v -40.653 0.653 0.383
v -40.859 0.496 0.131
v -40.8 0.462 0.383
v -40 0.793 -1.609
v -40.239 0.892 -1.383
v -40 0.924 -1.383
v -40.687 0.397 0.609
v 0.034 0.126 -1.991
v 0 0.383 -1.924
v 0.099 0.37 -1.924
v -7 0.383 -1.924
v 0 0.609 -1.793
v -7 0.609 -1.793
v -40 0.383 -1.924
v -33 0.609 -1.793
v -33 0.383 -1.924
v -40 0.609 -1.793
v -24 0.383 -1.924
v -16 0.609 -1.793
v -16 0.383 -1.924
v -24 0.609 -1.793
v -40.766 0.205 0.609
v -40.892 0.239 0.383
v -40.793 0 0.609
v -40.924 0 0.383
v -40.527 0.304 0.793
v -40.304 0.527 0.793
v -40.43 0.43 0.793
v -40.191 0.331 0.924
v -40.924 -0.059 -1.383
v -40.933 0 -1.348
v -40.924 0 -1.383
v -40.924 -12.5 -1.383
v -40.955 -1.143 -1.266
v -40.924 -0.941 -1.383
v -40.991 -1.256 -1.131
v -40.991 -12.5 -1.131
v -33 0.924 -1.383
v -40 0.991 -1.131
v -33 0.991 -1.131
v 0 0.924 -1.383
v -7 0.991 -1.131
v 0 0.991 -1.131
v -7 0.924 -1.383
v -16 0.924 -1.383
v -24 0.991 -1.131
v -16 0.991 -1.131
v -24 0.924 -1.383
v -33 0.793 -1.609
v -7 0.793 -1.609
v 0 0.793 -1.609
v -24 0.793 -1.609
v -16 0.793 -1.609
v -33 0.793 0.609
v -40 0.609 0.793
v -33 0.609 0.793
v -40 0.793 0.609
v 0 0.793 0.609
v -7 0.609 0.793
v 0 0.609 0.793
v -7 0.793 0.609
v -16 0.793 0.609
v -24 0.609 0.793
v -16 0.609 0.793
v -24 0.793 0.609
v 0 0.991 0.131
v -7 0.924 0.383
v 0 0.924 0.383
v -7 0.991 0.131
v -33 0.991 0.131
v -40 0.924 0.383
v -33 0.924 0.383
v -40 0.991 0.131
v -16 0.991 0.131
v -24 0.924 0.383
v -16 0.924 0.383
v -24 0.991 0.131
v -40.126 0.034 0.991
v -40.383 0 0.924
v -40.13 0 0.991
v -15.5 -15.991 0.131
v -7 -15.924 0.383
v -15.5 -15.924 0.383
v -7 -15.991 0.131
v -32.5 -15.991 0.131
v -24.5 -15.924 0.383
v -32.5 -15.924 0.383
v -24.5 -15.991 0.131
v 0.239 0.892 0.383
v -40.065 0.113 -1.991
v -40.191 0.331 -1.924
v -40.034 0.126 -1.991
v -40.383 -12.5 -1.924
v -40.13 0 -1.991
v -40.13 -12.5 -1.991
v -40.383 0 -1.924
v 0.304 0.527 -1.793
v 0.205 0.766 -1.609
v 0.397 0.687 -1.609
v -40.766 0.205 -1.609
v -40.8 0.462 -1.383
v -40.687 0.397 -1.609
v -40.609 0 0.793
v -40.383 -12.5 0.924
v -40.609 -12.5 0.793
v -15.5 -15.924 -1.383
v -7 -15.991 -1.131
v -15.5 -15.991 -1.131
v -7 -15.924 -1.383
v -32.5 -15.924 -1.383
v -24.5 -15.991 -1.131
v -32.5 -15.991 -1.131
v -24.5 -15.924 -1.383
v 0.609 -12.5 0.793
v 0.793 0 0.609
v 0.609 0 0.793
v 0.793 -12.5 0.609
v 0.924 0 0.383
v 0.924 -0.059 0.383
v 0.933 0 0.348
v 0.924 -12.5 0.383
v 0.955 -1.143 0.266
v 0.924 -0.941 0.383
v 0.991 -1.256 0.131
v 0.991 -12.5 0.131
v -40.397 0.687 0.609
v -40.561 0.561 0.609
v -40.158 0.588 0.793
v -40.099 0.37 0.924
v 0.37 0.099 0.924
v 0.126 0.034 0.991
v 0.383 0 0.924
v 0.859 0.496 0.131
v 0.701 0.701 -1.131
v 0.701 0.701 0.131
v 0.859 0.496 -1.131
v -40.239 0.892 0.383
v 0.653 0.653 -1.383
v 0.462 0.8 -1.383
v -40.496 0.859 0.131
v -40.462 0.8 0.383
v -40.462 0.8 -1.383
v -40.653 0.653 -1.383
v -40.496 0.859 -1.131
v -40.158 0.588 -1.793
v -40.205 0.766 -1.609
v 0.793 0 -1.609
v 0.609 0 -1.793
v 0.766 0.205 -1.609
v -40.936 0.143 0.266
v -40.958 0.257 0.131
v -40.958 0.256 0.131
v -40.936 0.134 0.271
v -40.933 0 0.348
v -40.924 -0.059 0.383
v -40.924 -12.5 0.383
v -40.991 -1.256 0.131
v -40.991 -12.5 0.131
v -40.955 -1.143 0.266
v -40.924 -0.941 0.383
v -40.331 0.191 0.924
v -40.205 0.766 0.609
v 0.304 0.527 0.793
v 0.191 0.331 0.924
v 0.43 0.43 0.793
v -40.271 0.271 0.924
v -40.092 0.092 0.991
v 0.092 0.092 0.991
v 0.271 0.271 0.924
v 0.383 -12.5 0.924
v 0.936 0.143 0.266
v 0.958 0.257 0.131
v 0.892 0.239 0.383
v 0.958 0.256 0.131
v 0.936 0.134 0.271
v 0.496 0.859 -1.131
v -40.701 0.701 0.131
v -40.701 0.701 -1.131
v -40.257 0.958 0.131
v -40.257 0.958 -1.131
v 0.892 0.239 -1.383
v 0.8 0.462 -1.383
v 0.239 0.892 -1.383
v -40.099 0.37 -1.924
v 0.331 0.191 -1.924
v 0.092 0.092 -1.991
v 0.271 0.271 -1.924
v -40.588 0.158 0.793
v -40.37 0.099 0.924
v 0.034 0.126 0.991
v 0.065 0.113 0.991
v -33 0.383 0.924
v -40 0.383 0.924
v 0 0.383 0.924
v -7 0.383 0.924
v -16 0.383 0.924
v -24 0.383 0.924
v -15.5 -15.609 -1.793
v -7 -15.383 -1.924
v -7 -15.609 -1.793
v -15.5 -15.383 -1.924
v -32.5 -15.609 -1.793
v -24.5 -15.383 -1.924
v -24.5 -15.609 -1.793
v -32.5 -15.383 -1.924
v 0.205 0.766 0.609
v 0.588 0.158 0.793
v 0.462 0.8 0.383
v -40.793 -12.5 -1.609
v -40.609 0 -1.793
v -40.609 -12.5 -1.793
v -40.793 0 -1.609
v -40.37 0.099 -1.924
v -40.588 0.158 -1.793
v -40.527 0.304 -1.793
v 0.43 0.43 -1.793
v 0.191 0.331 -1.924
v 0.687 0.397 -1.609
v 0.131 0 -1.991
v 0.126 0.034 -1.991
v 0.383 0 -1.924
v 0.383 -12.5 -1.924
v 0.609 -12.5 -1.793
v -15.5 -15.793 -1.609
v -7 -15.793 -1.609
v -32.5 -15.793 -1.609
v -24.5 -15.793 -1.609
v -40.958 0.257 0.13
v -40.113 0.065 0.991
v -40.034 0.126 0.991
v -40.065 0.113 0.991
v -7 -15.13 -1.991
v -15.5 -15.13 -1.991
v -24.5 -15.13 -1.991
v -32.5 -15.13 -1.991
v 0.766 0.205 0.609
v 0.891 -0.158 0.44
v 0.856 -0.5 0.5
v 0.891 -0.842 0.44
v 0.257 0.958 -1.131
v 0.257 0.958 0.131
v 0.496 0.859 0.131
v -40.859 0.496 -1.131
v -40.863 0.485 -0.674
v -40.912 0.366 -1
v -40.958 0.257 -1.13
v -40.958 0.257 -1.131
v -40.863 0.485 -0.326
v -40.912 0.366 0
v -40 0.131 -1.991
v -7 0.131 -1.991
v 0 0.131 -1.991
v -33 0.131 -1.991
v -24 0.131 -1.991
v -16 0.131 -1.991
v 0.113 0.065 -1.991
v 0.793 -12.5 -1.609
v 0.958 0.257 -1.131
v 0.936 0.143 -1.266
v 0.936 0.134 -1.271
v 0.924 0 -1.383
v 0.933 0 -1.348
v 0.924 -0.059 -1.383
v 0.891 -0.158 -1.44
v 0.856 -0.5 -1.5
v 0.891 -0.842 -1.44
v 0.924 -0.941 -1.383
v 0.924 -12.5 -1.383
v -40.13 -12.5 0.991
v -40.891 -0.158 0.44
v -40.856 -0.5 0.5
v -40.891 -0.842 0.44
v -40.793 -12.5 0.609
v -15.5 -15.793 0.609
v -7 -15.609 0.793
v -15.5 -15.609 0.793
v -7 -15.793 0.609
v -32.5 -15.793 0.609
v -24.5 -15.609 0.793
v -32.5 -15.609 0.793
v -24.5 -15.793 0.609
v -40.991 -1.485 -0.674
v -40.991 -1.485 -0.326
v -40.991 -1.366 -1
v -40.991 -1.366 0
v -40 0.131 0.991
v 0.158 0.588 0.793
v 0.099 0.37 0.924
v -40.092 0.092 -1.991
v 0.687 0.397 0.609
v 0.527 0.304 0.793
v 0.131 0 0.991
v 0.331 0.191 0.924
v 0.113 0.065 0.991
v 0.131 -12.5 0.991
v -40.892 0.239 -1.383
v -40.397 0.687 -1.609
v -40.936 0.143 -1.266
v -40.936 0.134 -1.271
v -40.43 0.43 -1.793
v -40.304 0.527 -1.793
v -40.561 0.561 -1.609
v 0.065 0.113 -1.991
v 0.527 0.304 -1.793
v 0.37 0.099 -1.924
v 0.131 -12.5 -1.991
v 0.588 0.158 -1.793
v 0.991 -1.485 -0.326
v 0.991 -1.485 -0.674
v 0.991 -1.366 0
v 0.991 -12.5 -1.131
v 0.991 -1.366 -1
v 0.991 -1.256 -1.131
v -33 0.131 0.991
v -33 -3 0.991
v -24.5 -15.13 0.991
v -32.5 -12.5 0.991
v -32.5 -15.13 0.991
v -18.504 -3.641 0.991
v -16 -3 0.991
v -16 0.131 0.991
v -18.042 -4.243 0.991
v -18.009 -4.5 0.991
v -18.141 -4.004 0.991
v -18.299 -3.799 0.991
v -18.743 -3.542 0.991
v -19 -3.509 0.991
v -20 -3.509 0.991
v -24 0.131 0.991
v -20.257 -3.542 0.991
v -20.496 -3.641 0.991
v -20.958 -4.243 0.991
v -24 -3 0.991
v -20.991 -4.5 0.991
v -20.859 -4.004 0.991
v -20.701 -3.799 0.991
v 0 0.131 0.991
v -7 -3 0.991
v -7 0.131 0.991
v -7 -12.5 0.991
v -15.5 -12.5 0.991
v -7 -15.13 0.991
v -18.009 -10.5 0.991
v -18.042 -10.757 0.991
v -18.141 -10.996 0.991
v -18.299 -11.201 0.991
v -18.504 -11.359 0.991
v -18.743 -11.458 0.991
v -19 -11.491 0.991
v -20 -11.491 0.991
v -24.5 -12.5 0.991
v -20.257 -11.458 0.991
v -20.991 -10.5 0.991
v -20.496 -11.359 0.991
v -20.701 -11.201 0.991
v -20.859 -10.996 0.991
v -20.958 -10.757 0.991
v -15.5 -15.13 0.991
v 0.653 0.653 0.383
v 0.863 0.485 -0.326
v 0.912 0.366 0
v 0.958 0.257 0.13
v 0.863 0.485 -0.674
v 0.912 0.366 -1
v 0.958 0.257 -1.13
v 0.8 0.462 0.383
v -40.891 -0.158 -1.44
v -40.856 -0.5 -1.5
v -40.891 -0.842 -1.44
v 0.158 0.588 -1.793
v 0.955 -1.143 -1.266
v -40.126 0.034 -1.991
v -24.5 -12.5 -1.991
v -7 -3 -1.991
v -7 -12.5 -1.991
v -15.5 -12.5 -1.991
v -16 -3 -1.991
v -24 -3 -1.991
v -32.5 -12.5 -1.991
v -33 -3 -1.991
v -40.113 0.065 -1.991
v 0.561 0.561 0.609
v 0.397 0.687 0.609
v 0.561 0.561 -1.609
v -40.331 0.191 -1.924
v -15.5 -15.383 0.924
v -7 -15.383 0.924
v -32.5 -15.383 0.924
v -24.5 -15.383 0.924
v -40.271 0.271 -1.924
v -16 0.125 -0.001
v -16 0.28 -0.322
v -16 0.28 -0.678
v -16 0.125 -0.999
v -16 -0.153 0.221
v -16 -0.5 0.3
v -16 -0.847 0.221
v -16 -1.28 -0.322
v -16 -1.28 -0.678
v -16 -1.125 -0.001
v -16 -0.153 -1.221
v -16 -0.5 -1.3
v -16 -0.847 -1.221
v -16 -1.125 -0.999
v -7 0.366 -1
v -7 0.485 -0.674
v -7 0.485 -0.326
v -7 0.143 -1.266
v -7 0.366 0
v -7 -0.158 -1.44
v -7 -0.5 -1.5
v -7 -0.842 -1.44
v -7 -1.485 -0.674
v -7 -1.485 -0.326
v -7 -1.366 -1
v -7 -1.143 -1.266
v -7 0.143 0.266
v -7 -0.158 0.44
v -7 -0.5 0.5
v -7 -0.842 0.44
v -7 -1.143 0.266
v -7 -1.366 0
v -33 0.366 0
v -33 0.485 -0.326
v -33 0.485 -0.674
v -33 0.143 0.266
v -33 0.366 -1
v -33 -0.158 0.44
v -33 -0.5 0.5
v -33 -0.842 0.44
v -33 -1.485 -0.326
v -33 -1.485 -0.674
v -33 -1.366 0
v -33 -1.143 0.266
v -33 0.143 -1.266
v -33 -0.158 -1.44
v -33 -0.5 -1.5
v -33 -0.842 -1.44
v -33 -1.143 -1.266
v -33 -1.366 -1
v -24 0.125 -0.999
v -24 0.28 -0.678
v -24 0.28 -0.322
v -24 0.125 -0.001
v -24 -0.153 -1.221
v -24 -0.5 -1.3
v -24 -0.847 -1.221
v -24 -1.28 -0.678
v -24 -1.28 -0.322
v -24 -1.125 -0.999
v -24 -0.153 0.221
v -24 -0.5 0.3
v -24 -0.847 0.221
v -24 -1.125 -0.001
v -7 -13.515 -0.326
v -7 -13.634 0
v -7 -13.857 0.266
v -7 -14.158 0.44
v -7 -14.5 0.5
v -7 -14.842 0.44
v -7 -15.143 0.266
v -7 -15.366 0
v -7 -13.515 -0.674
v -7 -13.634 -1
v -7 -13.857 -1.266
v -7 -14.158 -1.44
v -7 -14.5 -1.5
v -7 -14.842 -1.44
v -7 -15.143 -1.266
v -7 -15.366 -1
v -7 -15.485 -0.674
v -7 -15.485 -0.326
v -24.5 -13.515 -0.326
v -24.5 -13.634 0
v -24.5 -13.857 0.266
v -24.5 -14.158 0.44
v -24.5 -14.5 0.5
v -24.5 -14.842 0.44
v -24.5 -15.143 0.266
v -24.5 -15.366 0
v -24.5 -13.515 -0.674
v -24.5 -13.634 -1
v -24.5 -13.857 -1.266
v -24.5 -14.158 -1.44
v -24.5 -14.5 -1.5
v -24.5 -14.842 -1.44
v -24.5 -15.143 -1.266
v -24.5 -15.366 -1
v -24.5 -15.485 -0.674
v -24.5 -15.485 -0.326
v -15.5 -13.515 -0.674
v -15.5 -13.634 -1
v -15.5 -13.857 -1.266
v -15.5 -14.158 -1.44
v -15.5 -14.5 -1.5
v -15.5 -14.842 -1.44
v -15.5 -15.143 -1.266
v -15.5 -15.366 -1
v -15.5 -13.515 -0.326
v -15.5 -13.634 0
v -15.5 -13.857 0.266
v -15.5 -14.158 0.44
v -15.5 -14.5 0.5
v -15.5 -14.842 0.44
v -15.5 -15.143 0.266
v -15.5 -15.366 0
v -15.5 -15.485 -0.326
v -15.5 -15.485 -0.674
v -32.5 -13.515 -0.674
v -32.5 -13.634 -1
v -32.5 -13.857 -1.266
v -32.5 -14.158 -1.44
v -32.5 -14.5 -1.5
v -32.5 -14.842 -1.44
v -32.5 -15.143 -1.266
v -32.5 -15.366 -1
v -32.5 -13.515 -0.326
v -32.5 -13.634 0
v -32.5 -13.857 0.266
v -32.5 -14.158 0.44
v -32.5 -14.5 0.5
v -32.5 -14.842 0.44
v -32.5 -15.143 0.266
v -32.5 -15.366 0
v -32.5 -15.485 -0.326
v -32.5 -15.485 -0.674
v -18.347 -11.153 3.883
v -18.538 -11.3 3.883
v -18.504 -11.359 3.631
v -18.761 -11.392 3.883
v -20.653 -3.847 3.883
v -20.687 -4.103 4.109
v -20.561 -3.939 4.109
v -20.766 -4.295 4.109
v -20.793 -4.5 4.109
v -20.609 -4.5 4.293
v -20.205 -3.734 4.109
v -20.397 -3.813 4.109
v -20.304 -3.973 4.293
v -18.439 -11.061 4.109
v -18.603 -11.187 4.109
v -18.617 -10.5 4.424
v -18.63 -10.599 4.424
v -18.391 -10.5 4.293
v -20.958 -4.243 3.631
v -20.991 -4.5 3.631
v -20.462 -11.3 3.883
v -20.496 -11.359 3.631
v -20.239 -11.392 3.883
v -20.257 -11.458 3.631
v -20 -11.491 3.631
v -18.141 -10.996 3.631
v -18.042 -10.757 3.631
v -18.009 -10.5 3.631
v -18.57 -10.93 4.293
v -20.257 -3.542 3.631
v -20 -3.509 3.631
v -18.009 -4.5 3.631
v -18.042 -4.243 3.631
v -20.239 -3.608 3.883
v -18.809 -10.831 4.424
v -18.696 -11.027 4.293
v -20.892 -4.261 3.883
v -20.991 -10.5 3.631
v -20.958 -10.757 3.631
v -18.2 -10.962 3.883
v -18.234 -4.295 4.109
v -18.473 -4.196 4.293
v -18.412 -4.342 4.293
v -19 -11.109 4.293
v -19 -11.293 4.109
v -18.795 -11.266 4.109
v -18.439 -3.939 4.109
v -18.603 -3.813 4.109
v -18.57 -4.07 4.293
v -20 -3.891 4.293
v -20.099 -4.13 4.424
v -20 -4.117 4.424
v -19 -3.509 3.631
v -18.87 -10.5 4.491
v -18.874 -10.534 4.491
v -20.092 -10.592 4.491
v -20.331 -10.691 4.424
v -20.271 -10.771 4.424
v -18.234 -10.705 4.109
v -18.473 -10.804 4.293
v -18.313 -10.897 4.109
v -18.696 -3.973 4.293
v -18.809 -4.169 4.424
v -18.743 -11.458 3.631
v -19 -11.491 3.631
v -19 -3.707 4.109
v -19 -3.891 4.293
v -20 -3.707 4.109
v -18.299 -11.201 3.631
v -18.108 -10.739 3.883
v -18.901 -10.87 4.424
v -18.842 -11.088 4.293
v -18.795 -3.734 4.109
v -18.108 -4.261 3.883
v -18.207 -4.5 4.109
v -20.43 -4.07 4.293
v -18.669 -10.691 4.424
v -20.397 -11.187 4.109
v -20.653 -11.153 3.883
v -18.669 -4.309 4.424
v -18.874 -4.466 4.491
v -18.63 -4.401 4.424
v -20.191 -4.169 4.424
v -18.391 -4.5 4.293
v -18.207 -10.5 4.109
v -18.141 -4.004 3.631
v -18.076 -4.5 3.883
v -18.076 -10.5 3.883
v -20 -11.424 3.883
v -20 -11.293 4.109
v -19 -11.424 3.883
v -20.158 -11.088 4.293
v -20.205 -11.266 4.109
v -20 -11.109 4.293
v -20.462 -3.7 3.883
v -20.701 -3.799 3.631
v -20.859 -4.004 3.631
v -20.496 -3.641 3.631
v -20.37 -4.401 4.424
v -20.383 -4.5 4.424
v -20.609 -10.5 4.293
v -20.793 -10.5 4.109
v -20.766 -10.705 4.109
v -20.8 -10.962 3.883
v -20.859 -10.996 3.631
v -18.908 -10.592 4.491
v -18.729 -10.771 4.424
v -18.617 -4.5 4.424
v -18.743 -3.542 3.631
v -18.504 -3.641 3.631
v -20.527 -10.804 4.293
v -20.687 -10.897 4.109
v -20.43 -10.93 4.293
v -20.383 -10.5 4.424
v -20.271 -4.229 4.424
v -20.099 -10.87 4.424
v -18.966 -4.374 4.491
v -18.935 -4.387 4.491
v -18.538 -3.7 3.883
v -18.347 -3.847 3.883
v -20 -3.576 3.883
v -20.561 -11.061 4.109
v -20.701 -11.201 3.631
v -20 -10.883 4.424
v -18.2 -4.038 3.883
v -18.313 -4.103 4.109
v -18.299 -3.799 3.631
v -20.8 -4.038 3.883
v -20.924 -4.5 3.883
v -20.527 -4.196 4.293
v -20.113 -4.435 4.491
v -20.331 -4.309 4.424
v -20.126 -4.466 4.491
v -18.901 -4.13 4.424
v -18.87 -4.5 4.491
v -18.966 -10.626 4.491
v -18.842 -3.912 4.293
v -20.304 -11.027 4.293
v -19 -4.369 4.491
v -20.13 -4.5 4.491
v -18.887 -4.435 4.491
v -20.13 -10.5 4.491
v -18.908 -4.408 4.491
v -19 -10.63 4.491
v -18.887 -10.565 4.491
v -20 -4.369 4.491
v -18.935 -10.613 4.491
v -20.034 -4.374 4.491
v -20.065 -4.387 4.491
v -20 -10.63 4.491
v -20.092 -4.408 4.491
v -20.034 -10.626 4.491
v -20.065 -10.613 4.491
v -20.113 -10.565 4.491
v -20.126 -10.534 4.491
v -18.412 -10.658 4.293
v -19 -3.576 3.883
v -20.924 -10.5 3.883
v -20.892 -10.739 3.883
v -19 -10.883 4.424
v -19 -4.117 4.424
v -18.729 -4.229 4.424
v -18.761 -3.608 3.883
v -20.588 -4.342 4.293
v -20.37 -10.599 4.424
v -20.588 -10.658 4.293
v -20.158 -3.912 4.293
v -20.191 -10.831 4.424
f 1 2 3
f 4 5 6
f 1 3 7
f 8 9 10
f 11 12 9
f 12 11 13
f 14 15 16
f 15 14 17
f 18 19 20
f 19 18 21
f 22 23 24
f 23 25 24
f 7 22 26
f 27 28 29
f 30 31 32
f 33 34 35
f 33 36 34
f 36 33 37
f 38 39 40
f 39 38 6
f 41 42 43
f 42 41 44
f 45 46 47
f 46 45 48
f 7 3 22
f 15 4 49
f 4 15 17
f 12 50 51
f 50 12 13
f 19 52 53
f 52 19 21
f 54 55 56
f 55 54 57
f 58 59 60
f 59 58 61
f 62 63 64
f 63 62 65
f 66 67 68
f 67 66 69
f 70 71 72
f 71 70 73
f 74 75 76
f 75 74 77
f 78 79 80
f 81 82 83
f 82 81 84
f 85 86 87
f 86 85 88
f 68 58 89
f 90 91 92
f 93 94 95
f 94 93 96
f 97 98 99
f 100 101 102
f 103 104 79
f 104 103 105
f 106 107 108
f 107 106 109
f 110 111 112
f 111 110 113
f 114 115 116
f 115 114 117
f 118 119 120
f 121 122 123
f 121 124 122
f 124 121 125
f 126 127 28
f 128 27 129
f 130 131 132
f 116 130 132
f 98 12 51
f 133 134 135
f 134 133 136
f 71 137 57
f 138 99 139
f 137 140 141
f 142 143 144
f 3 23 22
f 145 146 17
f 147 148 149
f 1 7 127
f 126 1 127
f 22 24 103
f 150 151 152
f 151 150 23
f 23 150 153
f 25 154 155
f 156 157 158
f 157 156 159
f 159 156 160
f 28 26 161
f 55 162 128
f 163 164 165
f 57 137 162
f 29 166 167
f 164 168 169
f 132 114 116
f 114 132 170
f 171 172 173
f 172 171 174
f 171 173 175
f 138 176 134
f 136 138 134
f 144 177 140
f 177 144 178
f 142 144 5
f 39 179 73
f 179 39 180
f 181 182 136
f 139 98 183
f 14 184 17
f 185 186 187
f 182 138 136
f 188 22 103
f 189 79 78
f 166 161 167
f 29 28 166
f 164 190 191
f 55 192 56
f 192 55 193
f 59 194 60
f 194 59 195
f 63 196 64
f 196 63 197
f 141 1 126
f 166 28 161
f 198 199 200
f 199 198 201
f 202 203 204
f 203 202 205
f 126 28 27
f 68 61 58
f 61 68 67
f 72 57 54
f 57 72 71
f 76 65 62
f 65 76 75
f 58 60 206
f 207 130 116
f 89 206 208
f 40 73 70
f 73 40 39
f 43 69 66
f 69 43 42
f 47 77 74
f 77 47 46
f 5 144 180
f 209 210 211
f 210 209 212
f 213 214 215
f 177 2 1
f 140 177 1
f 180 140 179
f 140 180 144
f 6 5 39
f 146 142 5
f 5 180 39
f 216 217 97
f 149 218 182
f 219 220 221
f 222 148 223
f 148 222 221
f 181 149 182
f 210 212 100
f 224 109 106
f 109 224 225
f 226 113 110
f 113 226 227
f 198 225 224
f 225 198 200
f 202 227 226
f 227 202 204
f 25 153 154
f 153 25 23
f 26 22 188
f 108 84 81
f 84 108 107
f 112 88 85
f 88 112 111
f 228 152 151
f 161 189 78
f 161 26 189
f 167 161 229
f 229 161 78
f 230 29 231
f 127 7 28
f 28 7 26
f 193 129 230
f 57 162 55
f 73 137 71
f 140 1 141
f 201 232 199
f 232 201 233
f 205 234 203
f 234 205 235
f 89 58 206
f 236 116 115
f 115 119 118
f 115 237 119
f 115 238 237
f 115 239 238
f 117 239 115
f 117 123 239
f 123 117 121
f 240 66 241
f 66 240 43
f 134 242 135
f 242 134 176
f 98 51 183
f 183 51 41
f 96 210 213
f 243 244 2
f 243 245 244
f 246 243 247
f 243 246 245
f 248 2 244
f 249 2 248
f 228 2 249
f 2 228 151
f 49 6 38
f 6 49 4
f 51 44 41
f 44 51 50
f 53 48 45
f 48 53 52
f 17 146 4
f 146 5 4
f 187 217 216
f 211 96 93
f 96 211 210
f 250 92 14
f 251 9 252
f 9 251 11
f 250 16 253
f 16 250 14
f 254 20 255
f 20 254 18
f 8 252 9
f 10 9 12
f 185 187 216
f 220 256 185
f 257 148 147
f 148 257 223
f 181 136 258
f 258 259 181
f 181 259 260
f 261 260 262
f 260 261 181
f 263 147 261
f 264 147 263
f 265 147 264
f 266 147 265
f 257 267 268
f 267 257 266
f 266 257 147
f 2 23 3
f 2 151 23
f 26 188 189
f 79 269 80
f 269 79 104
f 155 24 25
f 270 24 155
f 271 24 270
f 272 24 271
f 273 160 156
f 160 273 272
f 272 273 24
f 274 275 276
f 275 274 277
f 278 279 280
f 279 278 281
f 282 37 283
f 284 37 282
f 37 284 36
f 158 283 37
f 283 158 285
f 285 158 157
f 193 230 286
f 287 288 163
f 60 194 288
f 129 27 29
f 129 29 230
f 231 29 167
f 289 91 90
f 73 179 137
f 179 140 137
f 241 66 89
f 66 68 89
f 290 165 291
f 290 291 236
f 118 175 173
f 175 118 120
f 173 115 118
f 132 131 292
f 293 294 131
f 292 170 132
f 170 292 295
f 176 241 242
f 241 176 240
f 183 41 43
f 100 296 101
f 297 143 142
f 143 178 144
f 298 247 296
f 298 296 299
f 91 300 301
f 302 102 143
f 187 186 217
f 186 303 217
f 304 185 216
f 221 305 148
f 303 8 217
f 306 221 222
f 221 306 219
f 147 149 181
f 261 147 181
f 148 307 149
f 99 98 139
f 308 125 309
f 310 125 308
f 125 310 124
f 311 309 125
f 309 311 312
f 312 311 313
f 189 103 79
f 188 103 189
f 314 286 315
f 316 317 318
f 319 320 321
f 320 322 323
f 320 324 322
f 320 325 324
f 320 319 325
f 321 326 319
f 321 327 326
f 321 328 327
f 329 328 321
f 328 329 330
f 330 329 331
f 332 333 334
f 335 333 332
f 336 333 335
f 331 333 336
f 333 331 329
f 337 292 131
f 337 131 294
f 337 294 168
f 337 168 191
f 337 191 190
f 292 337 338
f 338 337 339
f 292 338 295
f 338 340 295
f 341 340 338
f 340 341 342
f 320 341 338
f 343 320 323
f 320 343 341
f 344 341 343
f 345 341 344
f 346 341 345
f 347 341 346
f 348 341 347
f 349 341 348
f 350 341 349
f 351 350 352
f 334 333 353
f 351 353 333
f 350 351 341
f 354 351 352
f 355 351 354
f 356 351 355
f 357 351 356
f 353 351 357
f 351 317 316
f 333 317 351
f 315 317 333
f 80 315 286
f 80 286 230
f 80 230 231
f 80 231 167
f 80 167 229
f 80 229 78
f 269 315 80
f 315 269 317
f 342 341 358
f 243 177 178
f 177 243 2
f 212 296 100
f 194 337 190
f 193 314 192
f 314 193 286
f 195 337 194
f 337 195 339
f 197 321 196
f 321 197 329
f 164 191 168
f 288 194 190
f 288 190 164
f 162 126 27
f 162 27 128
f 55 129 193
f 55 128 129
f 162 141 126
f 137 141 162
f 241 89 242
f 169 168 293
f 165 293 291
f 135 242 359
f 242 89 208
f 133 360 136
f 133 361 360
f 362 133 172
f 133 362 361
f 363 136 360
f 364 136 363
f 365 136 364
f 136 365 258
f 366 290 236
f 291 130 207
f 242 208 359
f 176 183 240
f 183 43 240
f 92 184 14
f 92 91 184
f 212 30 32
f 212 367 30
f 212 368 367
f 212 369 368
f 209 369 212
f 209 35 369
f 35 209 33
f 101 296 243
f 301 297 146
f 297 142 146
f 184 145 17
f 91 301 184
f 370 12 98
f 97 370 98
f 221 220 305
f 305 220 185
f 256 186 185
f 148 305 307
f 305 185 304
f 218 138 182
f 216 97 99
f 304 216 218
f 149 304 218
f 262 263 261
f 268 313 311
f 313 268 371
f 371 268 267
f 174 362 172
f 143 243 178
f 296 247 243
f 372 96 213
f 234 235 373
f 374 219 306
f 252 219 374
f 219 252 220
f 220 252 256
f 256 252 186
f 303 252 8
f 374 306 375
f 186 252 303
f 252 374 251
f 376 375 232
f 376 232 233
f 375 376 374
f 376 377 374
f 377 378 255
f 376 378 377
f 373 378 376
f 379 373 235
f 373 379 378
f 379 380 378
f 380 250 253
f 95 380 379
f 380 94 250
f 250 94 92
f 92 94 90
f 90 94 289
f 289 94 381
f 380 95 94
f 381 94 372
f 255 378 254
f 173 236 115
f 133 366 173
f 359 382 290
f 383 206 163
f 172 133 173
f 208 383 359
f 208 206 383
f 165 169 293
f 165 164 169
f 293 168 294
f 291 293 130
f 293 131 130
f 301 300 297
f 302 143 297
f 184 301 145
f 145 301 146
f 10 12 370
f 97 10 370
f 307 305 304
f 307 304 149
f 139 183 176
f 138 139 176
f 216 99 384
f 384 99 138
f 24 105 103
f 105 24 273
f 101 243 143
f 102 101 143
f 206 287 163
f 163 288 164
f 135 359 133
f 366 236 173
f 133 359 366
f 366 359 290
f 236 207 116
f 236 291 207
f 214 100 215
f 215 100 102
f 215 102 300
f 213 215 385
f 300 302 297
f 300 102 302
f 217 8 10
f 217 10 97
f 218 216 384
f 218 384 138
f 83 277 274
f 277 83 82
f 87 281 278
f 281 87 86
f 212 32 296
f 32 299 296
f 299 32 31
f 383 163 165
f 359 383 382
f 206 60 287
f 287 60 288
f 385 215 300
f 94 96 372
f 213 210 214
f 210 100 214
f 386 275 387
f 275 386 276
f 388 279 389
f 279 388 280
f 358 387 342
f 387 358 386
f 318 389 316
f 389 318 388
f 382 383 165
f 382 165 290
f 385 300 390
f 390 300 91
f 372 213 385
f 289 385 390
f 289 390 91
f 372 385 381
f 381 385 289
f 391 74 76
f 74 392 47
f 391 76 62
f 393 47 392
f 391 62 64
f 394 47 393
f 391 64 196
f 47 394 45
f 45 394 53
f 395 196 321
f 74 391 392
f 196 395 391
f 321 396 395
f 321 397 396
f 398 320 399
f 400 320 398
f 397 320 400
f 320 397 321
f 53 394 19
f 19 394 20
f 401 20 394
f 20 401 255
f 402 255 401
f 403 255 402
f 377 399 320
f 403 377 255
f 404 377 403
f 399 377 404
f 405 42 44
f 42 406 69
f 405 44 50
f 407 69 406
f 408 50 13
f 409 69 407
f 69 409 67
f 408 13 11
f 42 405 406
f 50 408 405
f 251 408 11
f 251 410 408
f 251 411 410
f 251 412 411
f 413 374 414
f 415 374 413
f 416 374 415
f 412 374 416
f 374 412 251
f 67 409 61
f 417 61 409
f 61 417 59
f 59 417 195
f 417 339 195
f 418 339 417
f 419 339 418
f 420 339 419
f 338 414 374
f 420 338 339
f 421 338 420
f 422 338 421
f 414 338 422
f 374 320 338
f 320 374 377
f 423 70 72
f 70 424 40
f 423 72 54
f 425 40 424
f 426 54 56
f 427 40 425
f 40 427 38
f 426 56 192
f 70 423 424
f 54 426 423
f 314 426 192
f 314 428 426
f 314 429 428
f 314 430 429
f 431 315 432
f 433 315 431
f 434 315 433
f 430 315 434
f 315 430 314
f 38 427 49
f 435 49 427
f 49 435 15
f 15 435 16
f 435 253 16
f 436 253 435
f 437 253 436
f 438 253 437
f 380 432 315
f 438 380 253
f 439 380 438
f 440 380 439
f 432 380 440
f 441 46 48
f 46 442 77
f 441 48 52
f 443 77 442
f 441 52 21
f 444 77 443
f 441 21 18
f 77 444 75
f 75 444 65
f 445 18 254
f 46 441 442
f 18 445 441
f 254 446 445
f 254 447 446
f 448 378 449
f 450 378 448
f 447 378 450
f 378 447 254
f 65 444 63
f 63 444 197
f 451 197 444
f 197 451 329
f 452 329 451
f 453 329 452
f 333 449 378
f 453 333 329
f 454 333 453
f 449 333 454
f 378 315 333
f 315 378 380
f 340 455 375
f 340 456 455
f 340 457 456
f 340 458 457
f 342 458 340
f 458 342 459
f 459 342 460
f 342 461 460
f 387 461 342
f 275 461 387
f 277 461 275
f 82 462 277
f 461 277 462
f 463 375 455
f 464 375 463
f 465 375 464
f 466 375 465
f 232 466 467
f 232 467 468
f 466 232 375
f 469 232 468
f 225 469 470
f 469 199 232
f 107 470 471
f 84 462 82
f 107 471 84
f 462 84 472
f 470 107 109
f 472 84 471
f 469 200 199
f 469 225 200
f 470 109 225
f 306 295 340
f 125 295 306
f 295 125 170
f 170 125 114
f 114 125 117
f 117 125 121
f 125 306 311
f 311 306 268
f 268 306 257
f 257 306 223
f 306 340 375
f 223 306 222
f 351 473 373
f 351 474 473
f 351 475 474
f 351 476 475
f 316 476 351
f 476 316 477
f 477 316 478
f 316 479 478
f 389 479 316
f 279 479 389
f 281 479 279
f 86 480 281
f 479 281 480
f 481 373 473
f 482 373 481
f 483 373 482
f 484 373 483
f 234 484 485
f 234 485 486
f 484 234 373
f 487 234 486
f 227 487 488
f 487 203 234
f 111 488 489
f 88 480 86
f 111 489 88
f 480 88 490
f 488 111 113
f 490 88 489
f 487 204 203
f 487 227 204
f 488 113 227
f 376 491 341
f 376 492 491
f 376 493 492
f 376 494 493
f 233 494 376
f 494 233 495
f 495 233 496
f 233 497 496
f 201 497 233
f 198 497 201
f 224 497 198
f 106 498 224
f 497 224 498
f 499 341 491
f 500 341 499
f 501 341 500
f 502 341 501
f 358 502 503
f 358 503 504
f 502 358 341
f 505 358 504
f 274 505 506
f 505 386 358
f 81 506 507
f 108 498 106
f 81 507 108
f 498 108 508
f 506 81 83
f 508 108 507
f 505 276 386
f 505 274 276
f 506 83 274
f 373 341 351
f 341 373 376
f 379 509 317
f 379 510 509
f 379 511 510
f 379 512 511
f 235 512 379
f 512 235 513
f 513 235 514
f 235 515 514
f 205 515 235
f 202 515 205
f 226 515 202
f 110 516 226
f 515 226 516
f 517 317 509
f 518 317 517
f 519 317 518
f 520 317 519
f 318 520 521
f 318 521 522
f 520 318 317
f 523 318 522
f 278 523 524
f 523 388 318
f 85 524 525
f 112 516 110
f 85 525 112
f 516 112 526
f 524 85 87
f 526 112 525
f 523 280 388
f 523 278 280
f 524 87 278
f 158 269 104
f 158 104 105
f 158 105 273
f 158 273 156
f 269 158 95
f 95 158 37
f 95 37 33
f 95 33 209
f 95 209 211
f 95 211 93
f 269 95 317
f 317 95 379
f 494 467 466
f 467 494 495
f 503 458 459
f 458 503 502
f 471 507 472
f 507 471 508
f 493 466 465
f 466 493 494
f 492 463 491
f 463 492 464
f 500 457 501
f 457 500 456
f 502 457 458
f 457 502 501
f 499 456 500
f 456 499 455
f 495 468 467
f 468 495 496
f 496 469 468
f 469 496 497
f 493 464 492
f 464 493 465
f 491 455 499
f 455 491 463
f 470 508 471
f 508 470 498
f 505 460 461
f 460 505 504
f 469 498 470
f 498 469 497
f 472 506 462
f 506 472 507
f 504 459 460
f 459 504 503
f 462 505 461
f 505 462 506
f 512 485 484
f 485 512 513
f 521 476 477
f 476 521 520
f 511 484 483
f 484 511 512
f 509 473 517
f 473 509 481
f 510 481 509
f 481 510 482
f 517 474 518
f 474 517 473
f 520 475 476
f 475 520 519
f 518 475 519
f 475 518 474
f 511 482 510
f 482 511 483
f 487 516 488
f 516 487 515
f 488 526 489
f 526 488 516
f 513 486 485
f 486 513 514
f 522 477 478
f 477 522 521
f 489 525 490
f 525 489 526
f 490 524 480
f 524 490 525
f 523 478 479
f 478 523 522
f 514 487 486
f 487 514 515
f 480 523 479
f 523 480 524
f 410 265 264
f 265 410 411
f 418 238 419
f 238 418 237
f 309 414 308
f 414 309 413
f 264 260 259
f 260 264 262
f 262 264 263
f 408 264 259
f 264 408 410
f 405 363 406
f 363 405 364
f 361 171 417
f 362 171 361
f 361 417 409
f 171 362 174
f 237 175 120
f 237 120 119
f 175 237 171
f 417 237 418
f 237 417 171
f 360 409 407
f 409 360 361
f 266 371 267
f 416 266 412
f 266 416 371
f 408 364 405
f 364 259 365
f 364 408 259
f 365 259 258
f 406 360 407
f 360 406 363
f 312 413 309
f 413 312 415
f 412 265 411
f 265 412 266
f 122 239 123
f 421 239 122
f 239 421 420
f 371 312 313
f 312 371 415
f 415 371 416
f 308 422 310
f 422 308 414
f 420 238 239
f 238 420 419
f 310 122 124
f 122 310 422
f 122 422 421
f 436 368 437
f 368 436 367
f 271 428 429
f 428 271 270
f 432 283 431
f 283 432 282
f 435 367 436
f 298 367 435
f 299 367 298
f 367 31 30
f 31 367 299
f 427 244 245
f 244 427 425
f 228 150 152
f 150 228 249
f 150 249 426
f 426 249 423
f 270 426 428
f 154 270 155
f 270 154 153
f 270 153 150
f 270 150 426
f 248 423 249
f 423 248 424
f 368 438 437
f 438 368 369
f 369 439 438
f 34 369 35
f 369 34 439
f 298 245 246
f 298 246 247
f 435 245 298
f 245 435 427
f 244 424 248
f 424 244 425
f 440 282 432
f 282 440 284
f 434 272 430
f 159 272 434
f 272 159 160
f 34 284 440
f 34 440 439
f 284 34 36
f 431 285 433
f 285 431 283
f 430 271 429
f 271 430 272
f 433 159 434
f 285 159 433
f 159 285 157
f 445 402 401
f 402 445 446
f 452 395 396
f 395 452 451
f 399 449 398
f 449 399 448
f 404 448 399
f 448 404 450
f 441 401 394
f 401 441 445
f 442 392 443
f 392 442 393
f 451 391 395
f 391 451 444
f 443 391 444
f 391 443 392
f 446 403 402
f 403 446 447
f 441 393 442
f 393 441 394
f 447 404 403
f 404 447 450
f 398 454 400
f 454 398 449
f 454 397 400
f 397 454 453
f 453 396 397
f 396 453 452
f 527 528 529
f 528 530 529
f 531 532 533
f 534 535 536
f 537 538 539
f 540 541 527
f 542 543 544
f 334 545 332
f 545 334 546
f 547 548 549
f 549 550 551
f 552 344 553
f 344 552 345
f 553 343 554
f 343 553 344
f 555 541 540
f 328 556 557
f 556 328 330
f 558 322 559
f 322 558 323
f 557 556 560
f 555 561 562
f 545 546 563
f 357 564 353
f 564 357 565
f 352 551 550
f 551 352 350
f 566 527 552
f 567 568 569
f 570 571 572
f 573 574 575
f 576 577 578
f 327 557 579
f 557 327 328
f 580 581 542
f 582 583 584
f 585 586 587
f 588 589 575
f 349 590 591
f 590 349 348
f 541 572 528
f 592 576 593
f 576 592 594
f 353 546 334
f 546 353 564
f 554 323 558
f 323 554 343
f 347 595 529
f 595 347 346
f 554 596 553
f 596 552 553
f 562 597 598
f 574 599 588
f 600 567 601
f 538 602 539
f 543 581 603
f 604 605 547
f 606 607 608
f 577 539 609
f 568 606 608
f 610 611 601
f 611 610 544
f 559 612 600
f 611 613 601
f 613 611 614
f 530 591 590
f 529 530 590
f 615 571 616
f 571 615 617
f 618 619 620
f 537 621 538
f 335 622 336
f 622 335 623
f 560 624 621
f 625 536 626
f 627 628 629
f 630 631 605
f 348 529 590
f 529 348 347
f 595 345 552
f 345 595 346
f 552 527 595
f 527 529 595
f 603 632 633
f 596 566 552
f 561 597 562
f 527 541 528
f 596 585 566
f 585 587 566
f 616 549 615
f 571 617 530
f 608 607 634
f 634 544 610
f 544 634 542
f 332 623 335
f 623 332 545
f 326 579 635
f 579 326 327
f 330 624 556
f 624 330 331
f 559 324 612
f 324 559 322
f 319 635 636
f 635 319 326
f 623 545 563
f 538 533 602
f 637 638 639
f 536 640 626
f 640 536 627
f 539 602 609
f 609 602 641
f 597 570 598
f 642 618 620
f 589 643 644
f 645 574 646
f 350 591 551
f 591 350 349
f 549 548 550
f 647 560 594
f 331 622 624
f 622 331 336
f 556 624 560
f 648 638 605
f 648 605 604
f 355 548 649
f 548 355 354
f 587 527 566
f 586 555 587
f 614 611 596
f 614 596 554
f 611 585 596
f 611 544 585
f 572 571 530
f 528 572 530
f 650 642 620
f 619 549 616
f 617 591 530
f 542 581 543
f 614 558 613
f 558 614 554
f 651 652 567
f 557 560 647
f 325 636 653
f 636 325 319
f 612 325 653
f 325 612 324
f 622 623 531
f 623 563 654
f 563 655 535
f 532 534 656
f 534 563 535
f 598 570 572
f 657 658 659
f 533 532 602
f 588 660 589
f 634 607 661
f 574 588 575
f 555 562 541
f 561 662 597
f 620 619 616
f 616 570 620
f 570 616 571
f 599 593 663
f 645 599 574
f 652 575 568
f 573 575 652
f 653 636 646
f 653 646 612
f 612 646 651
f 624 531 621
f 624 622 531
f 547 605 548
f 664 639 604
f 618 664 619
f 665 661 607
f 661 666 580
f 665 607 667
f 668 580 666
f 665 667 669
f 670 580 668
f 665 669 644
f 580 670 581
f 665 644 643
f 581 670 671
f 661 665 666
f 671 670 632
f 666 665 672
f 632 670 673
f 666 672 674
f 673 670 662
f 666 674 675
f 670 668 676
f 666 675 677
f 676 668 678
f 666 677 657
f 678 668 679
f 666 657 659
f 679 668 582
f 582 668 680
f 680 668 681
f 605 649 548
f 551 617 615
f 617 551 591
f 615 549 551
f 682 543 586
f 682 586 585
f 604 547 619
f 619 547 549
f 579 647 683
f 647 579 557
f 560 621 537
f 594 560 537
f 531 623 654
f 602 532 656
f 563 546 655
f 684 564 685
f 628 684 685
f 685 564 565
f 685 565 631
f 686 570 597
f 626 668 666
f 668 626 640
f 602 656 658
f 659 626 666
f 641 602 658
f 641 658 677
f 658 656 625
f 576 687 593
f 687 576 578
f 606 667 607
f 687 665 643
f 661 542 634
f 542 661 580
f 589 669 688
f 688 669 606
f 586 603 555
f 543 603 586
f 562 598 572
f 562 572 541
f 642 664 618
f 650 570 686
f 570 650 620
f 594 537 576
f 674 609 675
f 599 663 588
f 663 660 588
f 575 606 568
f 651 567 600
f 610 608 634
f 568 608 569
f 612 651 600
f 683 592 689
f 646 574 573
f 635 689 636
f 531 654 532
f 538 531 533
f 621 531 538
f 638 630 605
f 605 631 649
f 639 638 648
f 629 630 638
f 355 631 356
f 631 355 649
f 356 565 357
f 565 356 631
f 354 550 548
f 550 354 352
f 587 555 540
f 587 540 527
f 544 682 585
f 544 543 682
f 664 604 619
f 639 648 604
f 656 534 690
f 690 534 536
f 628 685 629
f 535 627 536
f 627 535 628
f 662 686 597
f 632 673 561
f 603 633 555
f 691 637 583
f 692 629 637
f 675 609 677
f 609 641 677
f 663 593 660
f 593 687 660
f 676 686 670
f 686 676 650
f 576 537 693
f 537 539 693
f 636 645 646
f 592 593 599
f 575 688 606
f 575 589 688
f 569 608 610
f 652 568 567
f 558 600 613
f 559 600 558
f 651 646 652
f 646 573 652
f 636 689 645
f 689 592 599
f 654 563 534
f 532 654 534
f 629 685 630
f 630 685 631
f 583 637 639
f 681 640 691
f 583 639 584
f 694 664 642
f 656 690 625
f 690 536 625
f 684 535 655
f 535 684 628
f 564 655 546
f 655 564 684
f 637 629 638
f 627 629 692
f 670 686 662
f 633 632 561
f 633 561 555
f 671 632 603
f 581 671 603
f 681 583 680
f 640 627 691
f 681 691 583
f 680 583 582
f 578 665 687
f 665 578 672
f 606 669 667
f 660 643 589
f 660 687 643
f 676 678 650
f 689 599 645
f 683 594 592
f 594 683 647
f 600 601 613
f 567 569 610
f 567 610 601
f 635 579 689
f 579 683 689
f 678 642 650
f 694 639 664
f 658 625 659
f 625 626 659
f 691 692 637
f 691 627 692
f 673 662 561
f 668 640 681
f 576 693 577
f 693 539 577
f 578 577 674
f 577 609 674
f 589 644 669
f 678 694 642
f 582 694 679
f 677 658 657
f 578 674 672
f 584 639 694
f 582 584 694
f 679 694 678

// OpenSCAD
// file: ../../08_scadSimplifyLib/scad/primitives.scad
//px - Position X
//rx - Rotation X
//sx - Scale X
//mx - Mirror X


//yCube(szx=5, py=3, rz=30, mx=1, clr="red");
//yCyl(px=7, py=5, rb=3, clr="green");
//yPoly(p=[[-5,0],[5,0],[0,5]],szz=3);

//szx - SiZe X
module yCube(px=0, py=0, pz=0, rx=0, ry=0, rz=0, sx=1, sy=1, sz=1, mx=0, my=0, mz=0, szx=1, szy=1, szz=1, clr = "grey") {
    mirror([mx,my,mz])
    translate([px, py, pz])
    rotate([rx,ry,rz])
    scale([sx,sy,sz])
    color(clr)
        cube([szx, szy, szz], center=true);    
}//yCube

//rb - Radius Bottom, rt - Radius Top
module yCyl(px=0, py=0, pz=0, rx=0, ry=0, rz=0, sx=1, sy=1, sz=1, mx=0, my=0, mz=0, rb=1, rt=1, szz=1, clr = "grey", fn = ($preview ? 2:8) ) {
    mirror([mx,my,mz])
    translate([px, py, (pz-szz/2)])
    rotate([rx,ry,rz])
    scale([sx,sy,sz])
    color(clr)
        cylinder(szz, rb, rt, $fn=fn*((rb>rt)?rb:rt));    
}//yCyl


module yPoly(px=0, py=0, pz=0, rx=0, ry=0, rz=0, sx=1, sy=1, sz=1, mx=0, my=0, mz=0, p=[[0,0],[10,0],[0,10]], szz=1, clr = "grey") {
    mirror([mx,my,mz])
    translate([px, py, pz])
    rotate([rx,ry,rz])
    scale([sx,sy,sz])
    color(clr)
        linear_extrude(szz)
            polygon(p);
}//yCube
// main file
include <../../08_scadSimplifyLib/scad/primitives.scad>

difference(){
    minkowski(){
        yCube(szx=40, szy=15, szz=1);
        translate([-20,-7.5, -0.5])
            sphere(r=1, $fn=($preview? 8:24));
    }//mink

    yCube(szx=9, szy=7, szz=5, px=-11.5, py=0.5, pz=-1);
    yCube(szx=9, szy=7, szz=5, px=-28.5, py=0.5, pz=-1);

    yCube(szx=9, szy=7, szz=5, px=-2.5, py=-16, pz=-1);
    yCube(szx=9, szy=7, szz=5, px=-20, py=-16, pz=-1);
    yCube(szx=9, szy=7, szz=5, px=-37, py=-16, pz=-1);
    //holes
    
    yCyl(szz=12, rb=1, rt=1, ,px=-17, py=-14.5, pz=5.5, ry=90,fn=($preview? 9:18));
    yCyl(szz=12, rb=1, rt=1, ,px=-35, py=-14.5, pz=5.5, ry=90,fn=($preview? 9:18));

    yCyl(szz=12, rb=1, rt=1, ,px=-10, py=-0.5, pz=5.5, ry=90,fn=($preview? 9:18));
    yCyl(szz=12, rb=1, rt=1, ,px=-42, py=-0.5, pz=5.5, ry=90,fn=($preview? 9:18));
    //central smaller hole
    yCyl(szz=12, rb=0.8, rt=0.8, ,px=-25, py=-0.5, pz=5.5, ry=90,fn=($preview? 9:18));
}
    
    
translate([-19.0,-4.5, 4]){
    minkowski(){
        yCube(szx=1, szy=6, szz=4);
        translate([-0.5,-3, -2.5])
            sphere(r=1, $fn=($preview? 8:24));
    }//mnk
}
